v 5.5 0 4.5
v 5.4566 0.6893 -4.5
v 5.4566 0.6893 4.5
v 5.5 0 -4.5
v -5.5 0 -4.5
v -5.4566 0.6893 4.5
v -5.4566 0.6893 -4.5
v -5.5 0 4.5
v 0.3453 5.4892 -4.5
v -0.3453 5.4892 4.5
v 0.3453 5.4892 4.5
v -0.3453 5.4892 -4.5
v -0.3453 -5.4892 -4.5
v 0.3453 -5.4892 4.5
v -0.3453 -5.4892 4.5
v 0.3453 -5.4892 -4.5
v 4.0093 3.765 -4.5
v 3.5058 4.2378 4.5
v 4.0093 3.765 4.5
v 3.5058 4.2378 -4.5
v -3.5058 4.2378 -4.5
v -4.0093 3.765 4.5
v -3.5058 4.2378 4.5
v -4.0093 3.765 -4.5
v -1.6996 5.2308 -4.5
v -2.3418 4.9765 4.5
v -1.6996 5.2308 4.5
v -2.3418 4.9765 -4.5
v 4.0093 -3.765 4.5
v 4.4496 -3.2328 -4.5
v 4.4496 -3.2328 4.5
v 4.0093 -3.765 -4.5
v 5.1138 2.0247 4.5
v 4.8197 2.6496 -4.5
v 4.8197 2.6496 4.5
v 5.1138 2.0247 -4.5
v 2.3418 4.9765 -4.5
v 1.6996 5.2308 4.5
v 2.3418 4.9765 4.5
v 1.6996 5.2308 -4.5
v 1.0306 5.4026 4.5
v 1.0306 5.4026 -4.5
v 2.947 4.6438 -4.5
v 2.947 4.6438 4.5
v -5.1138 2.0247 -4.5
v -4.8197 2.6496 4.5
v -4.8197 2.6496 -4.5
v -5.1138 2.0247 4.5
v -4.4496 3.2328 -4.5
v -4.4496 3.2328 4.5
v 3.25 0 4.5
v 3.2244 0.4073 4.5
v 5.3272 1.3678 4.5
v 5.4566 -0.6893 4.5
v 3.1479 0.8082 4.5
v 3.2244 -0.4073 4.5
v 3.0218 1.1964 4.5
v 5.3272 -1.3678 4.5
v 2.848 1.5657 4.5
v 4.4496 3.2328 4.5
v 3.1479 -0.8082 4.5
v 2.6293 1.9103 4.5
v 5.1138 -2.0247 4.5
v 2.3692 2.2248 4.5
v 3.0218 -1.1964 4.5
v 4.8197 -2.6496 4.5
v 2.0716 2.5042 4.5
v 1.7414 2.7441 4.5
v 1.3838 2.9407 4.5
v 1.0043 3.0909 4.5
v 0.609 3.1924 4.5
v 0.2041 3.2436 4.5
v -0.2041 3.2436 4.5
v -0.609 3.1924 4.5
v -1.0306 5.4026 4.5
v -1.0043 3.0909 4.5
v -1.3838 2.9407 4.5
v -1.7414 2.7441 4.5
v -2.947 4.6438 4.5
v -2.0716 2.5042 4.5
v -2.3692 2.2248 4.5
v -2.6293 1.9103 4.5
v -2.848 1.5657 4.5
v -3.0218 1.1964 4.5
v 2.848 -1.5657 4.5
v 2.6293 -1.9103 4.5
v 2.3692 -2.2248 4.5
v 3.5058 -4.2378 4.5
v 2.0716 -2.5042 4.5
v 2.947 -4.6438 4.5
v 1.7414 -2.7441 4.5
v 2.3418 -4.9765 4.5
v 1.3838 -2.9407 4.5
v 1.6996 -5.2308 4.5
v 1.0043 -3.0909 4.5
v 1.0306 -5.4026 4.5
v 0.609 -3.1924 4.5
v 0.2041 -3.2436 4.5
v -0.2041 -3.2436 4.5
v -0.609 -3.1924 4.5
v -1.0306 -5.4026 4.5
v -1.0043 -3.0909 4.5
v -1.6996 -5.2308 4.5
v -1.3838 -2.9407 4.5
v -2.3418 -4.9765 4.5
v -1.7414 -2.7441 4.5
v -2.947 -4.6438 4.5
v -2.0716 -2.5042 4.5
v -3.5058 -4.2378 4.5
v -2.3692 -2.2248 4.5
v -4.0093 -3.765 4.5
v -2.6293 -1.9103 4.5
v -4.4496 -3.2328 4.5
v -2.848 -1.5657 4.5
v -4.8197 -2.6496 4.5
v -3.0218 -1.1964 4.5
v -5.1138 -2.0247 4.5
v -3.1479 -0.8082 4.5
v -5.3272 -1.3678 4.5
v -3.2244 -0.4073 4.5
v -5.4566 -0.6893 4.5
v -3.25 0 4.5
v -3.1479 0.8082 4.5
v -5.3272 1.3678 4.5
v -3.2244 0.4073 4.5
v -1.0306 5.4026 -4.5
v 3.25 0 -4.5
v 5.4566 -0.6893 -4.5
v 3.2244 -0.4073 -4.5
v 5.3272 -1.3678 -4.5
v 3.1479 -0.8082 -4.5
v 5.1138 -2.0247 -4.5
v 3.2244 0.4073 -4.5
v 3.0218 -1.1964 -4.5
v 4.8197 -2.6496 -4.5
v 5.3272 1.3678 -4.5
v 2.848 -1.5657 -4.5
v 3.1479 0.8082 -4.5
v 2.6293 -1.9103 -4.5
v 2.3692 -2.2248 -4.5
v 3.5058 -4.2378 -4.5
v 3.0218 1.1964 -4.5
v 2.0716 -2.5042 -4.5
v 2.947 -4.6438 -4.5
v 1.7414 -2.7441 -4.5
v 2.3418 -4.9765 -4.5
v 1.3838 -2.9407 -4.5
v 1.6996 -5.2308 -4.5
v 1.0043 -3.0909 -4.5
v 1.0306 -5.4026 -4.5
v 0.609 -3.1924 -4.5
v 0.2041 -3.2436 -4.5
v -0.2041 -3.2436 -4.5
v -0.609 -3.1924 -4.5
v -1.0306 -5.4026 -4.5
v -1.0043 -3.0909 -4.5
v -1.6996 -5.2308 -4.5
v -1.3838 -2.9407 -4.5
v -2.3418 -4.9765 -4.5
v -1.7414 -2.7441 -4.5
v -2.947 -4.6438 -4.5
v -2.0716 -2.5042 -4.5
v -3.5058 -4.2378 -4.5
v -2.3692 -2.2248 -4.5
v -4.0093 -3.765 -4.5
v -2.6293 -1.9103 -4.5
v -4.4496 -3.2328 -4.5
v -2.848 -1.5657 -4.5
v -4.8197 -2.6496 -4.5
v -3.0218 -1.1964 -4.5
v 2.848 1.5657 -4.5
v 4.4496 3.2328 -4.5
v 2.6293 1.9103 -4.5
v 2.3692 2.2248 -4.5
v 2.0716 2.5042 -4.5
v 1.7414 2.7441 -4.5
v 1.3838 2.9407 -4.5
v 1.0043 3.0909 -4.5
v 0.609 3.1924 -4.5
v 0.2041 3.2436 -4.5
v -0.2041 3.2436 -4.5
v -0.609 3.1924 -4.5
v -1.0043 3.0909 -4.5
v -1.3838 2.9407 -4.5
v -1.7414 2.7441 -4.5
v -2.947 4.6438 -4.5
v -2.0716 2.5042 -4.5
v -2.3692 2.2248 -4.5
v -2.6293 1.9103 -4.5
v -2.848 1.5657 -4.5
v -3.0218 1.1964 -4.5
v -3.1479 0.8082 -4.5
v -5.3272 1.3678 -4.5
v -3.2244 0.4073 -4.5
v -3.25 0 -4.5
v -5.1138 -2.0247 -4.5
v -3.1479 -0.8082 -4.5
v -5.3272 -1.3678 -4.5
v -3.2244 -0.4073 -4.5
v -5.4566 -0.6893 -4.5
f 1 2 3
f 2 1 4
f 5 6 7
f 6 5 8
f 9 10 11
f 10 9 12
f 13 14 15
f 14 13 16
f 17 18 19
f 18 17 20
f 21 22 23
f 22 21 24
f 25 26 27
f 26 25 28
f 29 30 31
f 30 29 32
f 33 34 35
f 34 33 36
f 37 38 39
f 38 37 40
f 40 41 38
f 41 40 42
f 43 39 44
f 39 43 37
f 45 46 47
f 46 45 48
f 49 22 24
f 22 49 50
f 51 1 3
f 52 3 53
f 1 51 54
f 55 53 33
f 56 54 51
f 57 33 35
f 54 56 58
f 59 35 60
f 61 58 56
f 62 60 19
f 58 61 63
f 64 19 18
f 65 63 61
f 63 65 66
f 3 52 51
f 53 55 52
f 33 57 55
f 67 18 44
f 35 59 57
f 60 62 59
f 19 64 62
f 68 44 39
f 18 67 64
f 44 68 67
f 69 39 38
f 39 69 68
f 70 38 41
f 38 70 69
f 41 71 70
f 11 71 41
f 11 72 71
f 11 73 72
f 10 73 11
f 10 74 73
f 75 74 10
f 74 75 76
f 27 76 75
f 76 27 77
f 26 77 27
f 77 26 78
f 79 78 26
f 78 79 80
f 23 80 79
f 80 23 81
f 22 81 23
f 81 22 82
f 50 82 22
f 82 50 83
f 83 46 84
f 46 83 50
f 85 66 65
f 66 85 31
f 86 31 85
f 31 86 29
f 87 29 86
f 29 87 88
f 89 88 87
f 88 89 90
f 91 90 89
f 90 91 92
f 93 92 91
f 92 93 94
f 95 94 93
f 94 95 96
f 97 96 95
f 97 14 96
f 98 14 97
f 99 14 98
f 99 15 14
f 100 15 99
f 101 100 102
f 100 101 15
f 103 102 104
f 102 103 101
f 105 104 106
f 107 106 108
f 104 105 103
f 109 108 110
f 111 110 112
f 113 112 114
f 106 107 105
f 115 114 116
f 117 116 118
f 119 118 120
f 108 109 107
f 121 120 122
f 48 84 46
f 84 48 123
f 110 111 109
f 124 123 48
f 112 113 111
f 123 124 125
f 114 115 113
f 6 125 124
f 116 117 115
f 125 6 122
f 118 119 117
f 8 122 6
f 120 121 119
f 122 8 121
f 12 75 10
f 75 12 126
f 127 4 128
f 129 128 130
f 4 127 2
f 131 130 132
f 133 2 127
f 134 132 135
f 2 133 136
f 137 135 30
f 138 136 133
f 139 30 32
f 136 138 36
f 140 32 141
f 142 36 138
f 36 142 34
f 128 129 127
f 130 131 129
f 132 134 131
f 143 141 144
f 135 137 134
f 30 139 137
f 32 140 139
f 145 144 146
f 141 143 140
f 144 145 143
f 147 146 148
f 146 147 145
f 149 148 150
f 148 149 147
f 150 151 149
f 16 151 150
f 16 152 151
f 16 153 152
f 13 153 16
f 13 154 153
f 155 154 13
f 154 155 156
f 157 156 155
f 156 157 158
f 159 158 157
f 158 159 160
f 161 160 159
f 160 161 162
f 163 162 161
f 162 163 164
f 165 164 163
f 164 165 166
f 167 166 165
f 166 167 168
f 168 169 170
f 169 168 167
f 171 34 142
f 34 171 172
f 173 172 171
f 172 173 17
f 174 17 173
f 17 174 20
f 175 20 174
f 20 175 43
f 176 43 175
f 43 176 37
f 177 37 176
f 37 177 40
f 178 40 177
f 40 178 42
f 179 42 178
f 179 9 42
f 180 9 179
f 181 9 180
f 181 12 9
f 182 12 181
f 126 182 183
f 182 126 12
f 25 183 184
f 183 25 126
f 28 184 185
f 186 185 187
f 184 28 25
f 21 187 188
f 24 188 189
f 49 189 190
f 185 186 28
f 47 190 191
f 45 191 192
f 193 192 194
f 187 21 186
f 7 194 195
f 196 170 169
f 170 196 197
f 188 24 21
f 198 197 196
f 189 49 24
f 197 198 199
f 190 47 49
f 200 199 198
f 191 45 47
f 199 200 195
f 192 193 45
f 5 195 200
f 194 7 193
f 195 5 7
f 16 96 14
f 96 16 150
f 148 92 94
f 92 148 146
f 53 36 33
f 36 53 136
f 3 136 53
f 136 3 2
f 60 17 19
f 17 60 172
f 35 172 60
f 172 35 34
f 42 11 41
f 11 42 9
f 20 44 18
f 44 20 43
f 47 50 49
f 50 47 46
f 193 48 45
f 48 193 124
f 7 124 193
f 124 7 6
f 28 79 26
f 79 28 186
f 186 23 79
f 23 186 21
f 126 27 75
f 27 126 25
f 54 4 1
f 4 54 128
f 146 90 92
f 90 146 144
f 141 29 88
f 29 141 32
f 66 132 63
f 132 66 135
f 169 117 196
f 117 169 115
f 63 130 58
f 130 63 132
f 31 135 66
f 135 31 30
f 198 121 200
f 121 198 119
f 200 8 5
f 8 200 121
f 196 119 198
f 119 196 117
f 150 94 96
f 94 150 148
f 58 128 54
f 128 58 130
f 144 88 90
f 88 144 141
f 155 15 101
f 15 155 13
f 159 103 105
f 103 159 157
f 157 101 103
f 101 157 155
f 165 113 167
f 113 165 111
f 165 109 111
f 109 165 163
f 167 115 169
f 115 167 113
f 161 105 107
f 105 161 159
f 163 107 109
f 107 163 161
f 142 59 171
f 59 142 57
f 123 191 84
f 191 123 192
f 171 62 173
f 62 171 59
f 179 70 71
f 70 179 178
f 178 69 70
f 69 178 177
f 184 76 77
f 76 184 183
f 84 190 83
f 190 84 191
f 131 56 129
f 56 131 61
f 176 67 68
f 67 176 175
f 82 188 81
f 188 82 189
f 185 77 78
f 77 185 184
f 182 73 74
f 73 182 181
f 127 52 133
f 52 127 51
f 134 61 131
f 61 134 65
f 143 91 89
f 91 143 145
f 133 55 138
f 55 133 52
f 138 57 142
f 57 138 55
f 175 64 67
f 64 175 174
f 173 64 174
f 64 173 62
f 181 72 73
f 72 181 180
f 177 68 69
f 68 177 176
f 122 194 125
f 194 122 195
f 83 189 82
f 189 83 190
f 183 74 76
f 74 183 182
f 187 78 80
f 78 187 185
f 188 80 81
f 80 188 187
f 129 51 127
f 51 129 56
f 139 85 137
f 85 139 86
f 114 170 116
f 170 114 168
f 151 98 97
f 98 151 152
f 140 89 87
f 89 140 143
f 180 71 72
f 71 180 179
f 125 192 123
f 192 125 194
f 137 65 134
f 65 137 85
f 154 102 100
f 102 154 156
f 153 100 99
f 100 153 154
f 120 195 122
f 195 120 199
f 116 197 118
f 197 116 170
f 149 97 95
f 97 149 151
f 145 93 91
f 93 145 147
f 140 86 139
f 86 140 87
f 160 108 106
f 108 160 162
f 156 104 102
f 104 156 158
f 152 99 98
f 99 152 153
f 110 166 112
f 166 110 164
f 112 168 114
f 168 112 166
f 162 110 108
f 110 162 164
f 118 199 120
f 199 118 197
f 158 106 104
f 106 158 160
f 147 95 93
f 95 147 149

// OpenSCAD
$fn = 50;


difference() {
	union() {
		translate(v = [0, 0, -4.5000000000]) {
			cylinder(h = 9, r = 5.5000000000);
		}
	}
	union() {
		translate(v = [0, 0, -100.0000000000]) {
			cylinder(h = 200, r = 3.2500000000);
		}
	}
}
